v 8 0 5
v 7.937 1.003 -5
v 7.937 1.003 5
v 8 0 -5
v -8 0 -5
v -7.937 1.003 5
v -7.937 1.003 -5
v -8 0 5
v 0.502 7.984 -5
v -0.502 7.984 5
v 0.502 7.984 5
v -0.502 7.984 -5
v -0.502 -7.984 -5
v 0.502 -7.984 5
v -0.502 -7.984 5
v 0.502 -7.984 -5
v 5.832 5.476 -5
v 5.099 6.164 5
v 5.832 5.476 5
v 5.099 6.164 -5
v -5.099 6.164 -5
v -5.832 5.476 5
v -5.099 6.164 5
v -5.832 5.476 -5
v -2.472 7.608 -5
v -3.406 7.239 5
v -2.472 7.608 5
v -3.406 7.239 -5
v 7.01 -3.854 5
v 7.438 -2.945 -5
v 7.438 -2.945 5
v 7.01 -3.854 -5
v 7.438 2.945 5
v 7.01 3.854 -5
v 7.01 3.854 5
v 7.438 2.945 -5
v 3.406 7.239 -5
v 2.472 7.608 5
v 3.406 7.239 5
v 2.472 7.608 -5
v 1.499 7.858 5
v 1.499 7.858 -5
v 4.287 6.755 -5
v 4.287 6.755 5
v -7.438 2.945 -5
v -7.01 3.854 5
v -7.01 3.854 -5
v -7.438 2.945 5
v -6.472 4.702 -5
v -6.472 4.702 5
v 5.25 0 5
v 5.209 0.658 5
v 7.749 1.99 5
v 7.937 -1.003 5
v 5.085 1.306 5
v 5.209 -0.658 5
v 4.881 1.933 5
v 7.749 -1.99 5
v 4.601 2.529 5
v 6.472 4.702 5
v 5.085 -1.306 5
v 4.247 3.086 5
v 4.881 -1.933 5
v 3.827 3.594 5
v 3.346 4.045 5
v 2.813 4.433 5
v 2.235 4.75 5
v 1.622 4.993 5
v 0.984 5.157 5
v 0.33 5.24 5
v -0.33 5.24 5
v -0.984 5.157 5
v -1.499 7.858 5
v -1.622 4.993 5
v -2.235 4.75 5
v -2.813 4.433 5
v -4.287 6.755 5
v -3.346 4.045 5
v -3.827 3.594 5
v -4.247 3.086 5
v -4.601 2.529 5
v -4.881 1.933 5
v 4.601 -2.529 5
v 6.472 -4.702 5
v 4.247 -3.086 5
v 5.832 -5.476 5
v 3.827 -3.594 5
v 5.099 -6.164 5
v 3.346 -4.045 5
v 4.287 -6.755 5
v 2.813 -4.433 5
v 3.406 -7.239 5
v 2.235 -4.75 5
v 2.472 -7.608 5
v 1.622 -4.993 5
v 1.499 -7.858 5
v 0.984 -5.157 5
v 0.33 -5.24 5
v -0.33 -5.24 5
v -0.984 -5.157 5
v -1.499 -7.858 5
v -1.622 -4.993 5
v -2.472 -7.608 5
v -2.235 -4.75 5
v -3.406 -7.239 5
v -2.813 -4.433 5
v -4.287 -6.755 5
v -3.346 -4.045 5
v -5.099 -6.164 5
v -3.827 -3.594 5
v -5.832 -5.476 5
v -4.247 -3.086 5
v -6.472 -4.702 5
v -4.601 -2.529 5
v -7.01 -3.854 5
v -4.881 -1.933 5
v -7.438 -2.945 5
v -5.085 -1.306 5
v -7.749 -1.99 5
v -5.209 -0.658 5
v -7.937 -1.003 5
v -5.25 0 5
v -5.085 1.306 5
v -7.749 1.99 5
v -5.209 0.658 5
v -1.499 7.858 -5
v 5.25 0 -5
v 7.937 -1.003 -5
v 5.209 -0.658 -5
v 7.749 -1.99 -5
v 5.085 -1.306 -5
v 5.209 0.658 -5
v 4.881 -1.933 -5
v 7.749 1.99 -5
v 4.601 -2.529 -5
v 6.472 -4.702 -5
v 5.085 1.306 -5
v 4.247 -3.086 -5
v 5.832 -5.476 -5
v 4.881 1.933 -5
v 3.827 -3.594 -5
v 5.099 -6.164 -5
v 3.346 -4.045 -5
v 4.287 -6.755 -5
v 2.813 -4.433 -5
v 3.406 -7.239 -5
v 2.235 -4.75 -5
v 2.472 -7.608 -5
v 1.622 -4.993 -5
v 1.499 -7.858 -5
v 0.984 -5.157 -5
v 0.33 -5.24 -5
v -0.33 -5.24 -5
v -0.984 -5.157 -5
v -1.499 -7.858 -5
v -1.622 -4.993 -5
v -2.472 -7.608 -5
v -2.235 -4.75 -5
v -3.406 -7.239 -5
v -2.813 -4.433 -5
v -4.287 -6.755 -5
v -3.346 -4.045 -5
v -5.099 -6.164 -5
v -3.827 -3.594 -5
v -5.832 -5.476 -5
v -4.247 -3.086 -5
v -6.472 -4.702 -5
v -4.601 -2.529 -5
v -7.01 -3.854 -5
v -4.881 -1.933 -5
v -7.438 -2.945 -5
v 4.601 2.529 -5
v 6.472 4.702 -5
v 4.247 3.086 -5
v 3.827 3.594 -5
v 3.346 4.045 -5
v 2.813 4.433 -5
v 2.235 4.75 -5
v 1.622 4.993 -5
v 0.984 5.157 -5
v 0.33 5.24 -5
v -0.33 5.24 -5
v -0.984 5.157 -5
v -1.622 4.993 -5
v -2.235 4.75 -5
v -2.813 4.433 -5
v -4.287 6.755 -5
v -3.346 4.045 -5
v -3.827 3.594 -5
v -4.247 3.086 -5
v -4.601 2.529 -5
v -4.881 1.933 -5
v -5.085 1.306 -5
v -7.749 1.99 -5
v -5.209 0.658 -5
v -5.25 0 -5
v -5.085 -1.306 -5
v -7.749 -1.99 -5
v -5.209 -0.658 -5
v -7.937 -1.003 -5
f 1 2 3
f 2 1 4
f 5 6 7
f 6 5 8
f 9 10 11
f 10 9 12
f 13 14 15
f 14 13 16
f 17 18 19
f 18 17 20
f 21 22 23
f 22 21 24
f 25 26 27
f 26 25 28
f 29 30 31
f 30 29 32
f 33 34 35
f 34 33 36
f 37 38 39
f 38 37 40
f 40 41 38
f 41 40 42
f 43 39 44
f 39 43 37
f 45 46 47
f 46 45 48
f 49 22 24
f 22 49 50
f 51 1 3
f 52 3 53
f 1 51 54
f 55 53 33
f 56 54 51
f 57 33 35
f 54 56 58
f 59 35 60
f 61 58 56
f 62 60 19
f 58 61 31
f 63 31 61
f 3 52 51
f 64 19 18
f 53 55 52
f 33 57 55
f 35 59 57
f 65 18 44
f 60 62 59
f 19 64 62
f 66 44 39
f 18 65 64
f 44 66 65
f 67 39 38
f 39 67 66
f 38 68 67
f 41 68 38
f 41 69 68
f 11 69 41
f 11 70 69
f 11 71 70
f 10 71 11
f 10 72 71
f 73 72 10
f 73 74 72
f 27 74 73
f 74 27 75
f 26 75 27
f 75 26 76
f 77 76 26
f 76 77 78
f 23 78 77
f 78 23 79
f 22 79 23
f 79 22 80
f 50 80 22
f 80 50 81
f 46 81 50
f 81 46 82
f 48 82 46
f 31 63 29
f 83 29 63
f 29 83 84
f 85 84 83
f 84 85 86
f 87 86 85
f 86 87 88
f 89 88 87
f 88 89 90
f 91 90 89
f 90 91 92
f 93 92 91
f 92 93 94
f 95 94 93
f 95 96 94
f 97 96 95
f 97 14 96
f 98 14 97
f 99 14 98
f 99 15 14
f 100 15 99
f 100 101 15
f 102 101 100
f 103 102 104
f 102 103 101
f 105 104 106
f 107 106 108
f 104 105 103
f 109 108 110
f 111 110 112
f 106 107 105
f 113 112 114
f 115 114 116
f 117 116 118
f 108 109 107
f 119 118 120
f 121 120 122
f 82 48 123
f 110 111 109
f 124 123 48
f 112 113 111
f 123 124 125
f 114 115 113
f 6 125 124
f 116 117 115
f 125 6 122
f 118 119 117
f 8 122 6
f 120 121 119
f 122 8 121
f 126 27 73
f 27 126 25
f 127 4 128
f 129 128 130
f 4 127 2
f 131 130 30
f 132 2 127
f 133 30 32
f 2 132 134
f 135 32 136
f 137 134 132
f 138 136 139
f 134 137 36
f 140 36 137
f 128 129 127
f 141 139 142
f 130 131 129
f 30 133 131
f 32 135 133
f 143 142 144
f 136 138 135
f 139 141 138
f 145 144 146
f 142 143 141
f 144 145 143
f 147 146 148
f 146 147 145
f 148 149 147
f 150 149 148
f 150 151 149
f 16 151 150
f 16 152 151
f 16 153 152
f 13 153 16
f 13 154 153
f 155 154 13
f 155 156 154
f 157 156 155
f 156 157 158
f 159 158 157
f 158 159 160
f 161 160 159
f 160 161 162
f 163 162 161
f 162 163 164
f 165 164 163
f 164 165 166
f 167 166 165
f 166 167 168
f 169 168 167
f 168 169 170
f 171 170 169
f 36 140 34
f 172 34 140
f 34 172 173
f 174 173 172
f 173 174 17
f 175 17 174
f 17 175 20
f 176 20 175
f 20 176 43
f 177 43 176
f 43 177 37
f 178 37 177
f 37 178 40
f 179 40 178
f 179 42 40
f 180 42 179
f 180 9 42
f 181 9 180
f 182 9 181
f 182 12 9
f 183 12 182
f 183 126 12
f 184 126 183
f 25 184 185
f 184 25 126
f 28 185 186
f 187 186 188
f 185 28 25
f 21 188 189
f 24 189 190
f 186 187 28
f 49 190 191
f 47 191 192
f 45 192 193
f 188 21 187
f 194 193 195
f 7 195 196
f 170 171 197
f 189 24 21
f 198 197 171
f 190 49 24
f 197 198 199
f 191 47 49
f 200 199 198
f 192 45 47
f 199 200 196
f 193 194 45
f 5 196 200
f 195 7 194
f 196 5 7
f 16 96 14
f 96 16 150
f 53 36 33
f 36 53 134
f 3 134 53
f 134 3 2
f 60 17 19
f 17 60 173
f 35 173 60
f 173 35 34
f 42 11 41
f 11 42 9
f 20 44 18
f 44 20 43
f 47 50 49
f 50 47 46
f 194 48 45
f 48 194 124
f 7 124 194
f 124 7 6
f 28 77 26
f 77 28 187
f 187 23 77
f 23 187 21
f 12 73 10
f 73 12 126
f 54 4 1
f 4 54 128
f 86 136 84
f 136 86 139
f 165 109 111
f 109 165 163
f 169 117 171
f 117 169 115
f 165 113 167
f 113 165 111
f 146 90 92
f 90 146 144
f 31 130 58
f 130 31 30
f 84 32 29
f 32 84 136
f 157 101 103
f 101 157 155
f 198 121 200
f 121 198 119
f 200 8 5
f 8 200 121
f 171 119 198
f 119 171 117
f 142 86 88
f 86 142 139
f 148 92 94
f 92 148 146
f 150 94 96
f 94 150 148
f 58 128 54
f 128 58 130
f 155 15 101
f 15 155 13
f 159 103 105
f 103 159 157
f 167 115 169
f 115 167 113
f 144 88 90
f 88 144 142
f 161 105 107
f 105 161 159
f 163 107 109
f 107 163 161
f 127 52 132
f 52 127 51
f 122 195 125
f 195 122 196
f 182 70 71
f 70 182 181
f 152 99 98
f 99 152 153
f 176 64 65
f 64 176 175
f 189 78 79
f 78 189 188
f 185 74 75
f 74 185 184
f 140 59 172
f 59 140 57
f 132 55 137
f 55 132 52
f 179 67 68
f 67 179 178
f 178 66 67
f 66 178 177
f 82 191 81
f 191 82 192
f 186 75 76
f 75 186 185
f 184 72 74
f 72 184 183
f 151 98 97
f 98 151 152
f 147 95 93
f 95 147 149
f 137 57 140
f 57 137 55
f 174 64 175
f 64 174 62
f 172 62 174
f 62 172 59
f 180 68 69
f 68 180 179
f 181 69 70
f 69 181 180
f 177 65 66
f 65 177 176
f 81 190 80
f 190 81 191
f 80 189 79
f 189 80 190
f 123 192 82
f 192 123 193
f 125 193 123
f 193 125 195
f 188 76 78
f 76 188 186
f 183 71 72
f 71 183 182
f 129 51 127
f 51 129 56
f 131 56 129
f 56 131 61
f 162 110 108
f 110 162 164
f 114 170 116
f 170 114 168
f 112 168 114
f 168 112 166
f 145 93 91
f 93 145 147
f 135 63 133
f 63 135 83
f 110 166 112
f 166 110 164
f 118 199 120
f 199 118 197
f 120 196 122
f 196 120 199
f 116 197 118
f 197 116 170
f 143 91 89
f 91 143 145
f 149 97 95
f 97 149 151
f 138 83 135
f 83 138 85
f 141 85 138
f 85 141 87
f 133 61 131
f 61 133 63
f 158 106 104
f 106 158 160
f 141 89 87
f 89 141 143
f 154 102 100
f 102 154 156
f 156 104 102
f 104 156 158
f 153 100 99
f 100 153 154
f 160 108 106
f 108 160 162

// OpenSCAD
$fn = 50;


difference() {
	union() {
		translate(v = [0, 0, -5.0000000000]) {
			cylinder(h = 10, r = 8.0000000000);
		}
	}
	union() {
		translate(v = [0, 0, -100.0000000000]) {
			cylinder(h = 200, r = 5.2500000000);
		}
	}
}
